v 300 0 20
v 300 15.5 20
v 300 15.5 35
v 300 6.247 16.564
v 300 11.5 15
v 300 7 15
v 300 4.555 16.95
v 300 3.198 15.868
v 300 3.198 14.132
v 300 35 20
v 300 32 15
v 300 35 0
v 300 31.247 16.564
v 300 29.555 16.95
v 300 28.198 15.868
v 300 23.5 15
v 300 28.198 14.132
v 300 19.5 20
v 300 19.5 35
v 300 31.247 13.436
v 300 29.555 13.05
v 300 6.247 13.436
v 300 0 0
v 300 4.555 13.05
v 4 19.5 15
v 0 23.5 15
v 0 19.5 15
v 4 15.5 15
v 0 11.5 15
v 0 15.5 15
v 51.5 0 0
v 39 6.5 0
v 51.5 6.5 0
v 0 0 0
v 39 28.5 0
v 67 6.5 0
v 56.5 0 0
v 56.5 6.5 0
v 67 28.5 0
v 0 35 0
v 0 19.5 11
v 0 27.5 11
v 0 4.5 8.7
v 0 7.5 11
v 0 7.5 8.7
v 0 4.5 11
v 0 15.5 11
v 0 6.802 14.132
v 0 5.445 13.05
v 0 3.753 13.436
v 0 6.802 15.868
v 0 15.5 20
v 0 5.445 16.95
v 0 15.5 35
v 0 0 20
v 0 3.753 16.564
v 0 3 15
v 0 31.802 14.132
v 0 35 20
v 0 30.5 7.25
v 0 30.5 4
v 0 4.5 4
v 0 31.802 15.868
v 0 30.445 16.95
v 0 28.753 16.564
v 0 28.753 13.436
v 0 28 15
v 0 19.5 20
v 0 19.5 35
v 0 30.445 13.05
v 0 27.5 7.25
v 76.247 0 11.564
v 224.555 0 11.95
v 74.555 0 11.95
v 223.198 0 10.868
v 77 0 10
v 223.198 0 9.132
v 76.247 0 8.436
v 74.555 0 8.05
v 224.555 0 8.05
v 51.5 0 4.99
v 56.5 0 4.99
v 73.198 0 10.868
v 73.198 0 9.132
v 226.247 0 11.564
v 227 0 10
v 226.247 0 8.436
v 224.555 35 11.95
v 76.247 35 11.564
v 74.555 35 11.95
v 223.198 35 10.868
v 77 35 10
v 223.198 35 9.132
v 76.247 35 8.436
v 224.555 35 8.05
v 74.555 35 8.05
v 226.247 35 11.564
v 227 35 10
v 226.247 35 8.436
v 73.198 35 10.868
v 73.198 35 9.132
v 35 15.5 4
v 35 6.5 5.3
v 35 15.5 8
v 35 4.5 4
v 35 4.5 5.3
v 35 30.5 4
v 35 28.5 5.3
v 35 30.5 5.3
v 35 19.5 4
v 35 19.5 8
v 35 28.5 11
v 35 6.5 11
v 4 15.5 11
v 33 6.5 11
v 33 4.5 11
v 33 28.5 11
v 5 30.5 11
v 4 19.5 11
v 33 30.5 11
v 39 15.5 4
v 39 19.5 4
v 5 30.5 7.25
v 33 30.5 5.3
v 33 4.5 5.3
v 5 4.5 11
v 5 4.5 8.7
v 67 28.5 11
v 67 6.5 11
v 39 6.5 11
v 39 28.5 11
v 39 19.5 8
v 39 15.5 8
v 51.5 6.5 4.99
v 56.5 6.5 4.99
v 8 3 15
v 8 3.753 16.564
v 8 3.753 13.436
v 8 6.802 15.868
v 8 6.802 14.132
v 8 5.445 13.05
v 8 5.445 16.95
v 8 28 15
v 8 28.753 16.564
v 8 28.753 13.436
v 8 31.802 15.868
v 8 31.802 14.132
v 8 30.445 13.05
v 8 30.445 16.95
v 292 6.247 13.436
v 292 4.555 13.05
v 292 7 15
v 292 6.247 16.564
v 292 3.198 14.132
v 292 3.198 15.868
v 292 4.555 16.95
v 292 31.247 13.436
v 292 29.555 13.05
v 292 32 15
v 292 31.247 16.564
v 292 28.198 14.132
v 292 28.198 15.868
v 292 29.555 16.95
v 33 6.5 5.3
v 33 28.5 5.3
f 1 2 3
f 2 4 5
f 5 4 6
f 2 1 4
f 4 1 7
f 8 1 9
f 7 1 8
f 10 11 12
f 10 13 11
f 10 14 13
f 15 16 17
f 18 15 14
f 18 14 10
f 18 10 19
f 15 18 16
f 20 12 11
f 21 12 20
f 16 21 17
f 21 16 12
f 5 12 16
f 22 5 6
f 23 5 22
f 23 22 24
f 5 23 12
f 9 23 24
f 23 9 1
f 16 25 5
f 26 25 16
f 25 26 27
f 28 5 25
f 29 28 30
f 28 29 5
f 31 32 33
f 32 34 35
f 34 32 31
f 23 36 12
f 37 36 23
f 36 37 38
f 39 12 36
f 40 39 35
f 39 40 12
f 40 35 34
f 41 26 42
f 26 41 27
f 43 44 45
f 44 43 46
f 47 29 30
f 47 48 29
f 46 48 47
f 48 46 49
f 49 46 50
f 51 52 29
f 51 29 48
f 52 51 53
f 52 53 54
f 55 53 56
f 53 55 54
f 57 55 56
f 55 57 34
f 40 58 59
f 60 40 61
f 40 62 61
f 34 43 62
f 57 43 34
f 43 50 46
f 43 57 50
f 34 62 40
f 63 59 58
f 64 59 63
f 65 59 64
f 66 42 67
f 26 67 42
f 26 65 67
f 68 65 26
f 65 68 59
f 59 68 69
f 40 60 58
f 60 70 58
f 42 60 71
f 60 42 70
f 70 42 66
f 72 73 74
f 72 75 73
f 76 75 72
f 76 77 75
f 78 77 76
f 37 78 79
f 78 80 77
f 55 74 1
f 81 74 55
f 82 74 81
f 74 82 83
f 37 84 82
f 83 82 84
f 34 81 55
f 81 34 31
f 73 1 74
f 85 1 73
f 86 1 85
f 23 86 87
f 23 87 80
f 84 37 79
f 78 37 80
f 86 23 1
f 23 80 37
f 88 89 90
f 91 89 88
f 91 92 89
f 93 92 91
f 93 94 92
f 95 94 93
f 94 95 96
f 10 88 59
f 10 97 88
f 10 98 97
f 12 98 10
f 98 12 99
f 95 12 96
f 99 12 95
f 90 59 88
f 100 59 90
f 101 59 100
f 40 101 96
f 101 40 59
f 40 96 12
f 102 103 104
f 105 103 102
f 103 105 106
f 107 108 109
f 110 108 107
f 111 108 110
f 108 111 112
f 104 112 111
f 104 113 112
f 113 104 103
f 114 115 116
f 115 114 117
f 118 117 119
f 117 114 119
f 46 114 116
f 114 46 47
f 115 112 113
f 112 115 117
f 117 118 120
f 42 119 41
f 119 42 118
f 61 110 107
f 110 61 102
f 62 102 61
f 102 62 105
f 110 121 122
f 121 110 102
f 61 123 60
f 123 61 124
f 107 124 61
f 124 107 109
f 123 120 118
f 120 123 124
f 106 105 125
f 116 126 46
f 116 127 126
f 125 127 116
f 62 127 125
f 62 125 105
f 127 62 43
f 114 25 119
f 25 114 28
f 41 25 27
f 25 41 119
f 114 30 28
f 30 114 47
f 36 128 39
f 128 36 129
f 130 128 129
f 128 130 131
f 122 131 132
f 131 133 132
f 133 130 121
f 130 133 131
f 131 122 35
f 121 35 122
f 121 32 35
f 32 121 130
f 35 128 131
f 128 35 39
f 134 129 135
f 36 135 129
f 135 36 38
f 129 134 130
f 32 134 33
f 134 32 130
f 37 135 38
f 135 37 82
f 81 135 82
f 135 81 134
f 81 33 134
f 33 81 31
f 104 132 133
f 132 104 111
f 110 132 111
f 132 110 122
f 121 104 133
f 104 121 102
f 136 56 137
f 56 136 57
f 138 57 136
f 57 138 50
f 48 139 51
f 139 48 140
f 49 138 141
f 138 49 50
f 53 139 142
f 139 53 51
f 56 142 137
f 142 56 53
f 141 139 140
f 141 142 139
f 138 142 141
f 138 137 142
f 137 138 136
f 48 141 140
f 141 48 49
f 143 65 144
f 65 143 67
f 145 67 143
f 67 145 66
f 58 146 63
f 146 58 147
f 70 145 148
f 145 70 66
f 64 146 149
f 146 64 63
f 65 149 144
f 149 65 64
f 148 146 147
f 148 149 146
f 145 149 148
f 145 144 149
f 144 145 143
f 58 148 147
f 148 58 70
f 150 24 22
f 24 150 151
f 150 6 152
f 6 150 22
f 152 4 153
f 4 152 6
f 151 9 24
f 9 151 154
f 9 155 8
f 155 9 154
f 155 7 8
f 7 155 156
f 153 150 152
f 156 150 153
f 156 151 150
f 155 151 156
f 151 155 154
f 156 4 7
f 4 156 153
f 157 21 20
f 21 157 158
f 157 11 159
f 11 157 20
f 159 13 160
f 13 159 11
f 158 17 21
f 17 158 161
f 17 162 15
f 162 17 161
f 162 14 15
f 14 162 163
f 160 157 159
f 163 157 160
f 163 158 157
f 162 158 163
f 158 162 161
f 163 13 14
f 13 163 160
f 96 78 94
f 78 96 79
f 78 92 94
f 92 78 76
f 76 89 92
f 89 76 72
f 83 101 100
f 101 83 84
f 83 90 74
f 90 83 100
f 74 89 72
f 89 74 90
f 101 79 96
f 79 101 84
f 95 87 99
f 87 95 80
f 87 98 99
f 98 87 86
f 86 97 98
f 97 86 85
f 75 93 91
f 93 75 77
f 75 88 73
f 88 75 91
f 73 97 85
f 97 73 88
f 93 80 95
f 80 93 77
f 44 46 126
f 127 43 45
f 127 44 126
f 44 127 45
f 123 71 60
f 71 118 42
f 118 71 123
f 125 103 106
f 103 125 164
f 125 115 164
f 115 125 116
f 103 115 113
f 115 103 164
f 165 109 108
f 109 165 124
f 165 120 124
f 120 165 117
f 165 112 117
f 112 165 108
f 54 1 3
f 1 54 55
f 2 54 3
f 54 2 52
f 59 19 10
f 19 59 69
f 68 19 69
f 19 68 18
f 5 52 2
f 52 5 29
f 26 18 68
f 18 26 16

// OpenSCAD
// main variables / parameters
sign_length = 300;
sign_depth = 4;

// other variables
strip_height = 5;
strip_width = 12;
sign_rail_socket_length = sign_length;
sign_rail_socket_width = sign_depth;
sign_rail_socket_height = 15;
wall_thickness = 2;
rail_length = sign_length;
rail_width = 35;
rail_wall_height = 20;
rail_height = sign_rail_socket_height + rail_wall_height;
side_wall_thickness = (rail_width-strip_width)/2;
esp_height = 7;
esp_length = 35;
esp_width = 26;
epsilon = 0.01;
screw_diameter = 4;
wago_height = 10;
wago_width = 12;
wago_length = 18;
wago_compartment_height = wago_height + 1;
wago_compartment_width = (wago_width + 2 ) * 2;
wago_compartment_length = wago_length + 4;
cable_duct_width = 4;
cable_duct_height = 6;
usb_port_width = 14;
usb_port_height = esp_height;
side_plate_screw_depth = 8;

module prism(l, w, h) {
    polyhedron(
        points=[[0,0,0], [l,0,0], [l,w,0], [0,w,0], [0,w,h], [l,w,h]],
        faces=[[0,1,2,3],[5,4,3,2],[0,4,5,1],[0,3,4],[5,2,1]]
    );
};

difference() {
    // body
    union() {
        translate([0, side_wall_thickness, 0])
            cube([sign_length, strip_width, rail_wall_height-strip_height]);
        translate([0, 0, 0])
            cube([sign_length, side_wall_thickness, rail_wall_height]);
        translate([0, strip_width+side_wall_thickness, 0])
            cube([sign_length, side_wall_thickness, rail_wall_height]);
    }

    // esp tray
    translate([-epsilon, rail_width/2-esp_width/2, (rail_wall_height-strip_height)/2-esp_height/2])
        cube([esp_length+epsilon, esp_width, esp_height]);

    // cable duct
    translate([-epsilon, rail_width/2-cable_duct_width/2, 5+epsilon])
        cube([cable_duct_width+epsilon, cable_duct_width, 10]);

    // wago compartment
    translate([esp_length + 4, rail_width/2-wago_compartment_length/2, -epsilon])
        cube([wago_compartment_width, wago_compartment_length, wago_compartment_height + epsilon]);
    // wago compartment cable duct
    translate([esp_length + (wago_compartment_width/2) + 2.5, -epsilon, -epsilon])
        cube([5, (rail_width-wago_compartment_length)/2 + 2 *epsilon, 5]);

    // power cable duct
    translate([esp_length - epsilon, rail_width/2-cable_duct_width/2, (rail_wall_height-strip_height)/2-esp_height/2])
        cube([4+2*epsilon, cable_duct_width, cable_duct_width]);

    // screw holes side plate
    translate([-epsilon, screw_diameter*1.25, rail_wall_height*3/4])
        rotate([-90, 0, -90])
            cylinder(side_plate_screw_depth+epsilon, d=screw_diameter);
    translate([-epsilon, rail_width-screw_diameter*1.25, rail_wall_height*3/4])
        rotate([-90, 0, -90])
            cylinder(side_plate_screw_depth+epsilon, d=screw_diameter);
    translate([rail_length+epsilon, screw_diameter*1.25, rail_wall_height*3/4])
        rotate([-90, 0, 90])
            cylinder(side_plate_screw_depth+epsilon, d=screw_diameter);
    translate([rail_length+epsilon, rail_width-screw_diameter*1.25, rail_wall_height*3/4])
        rotate([-90, 0, 90])
            cylinder(side_plate_screw_depth+epsilon, d=screw_diameter);

    // screw holes core
    translate([rail_length*1/4, -epsilon, rail_wall_height/2])
        rotate([-90, 0, 0])
            cylinder(rail_width+epsilon*2, d=screw_diameter);
    translate([rail_length*3/4, -epsilon, rail_wall_height/2])
        rotate([-90, 0, 0])
            cylinder(rail_width+epsilon*2, d=screw_diameter);
}

// esp position guidance
translate([0, (rail_width-esp_width)/2+3,  (rail_wall_height-strip_height)/2-esp_height/2+esp_height-(esp_height-4.7)])
    rotate([0, -90, 180])
        prism(esp_height-4.7, 3, 5);

// esp position guidance
translate([5, rail_width-(rail_width-esp_width)/2,  (rail_wall_height-strip_height)/2-esp_height/2+esp_height-(esp_height-3.25)])
    rotate([0, -90, 90])
        prism(esp_height-3.25, 5, 3);

translate([esp_length-2, (rail_width-esp_width)/2,  (rail_wall_height-strip_height)/2-esp_height/2+esp_height-(esp_height-1.3)])
    cube([2, 2, esp_height-1.3]);

translate([esp_length-2, rail_width-((rail_width-esp_width)/2+2),  (rail_wall_height-strip_height)/2-esp_height/2+esp_height-(esp_height-1.3)])
    cube([2, 2, esp_height-1.3]);

// prism led rail
translate([0, 0, rail_wall_height])
    prism(sign_length, rail_width/2-sign_rail_socket_width/2, sign_rail_socket_height);
translate([0, rail_width/2+sign_depth/2, rail_height])
    rotate([270, 0, 0])
        prism(sign_length, sign_rail_socket_height, rail_width/2-sign_rail_socket_width/2);

// prism support
translate([0, side_wall_thickness+strip_width/2-sign_depth/2, rail_wall_height])
    rotate([180, 0, 0])
        prism(sign_length, strip_width/2-sign_depth/2, strip_height);
translate([0, side_wall_thickness+strip_width, rail_wall_height-strip_height])
    rotate([90, 0, 0])
        prism(sign_length, strip_height, strip_width/2-sign_depth/2);

// side plate
*translate([-2, 0, 0]) {
    difference() {
        union() {
            cube([2, rail_width, rail_wall_height]);
            translate([0, rail_width/2-sign_depth/2, rail_wall_height])
                cube([2, sign_depth, sign_rail_socket_height]);
            translate([0, 0, rail_wall_height])
                prism(2, rail_width/2-sign_rail_socket_width/2, sign_rail_socket_height);
            translate([0, rail_width/2+sign_depth/2, rail_height])
                rotate([270, 0, 0])
                    prism(2, sign_rail_socket_height, rail_width/2-sign_rail_socket_width/2);
        }

        // usb port opening
        translate([-epsilon, rail_width/2-usb_port_width/2, (rail_wall_height-strip_height)/2-esp_height/2-0.5])
            cube([2+2*epsilon, usb_port_width, usb_port_height+0.5]);
        
        // screw holes
        translate([-epsilon, screw_diameter*1.25, rail_wall_height*3/4])
            rotate([-90, 0, -90])
                cylinder(side_plate_screw_depth+epsilon, d=screw_diameter);
        translate([-epsilon, rail_width-screw_diameter*1.25, rail_wall_height*3/4])
            rotate([-90, 0, -90])
                cylinder(side_plate_screw_depth+epsilon, d=screw_diameter);
        translate([rail_length+epsilon, screw_diameter*1.25, rail_wall_height*3/4])
            rotate([-90, 0, 90])
                cylinder(side_plate_screw_depth+epsilon, d=screw_diameter);
        translate([rail_length+epsilon, rail_width-screw_diameter*1.25, rail_wall_height*3/4])
            rotate([-90, 0, 90])
                cylinder(side_plate_screw_depth+epsilon, d=screw_diameter);
    }
}
